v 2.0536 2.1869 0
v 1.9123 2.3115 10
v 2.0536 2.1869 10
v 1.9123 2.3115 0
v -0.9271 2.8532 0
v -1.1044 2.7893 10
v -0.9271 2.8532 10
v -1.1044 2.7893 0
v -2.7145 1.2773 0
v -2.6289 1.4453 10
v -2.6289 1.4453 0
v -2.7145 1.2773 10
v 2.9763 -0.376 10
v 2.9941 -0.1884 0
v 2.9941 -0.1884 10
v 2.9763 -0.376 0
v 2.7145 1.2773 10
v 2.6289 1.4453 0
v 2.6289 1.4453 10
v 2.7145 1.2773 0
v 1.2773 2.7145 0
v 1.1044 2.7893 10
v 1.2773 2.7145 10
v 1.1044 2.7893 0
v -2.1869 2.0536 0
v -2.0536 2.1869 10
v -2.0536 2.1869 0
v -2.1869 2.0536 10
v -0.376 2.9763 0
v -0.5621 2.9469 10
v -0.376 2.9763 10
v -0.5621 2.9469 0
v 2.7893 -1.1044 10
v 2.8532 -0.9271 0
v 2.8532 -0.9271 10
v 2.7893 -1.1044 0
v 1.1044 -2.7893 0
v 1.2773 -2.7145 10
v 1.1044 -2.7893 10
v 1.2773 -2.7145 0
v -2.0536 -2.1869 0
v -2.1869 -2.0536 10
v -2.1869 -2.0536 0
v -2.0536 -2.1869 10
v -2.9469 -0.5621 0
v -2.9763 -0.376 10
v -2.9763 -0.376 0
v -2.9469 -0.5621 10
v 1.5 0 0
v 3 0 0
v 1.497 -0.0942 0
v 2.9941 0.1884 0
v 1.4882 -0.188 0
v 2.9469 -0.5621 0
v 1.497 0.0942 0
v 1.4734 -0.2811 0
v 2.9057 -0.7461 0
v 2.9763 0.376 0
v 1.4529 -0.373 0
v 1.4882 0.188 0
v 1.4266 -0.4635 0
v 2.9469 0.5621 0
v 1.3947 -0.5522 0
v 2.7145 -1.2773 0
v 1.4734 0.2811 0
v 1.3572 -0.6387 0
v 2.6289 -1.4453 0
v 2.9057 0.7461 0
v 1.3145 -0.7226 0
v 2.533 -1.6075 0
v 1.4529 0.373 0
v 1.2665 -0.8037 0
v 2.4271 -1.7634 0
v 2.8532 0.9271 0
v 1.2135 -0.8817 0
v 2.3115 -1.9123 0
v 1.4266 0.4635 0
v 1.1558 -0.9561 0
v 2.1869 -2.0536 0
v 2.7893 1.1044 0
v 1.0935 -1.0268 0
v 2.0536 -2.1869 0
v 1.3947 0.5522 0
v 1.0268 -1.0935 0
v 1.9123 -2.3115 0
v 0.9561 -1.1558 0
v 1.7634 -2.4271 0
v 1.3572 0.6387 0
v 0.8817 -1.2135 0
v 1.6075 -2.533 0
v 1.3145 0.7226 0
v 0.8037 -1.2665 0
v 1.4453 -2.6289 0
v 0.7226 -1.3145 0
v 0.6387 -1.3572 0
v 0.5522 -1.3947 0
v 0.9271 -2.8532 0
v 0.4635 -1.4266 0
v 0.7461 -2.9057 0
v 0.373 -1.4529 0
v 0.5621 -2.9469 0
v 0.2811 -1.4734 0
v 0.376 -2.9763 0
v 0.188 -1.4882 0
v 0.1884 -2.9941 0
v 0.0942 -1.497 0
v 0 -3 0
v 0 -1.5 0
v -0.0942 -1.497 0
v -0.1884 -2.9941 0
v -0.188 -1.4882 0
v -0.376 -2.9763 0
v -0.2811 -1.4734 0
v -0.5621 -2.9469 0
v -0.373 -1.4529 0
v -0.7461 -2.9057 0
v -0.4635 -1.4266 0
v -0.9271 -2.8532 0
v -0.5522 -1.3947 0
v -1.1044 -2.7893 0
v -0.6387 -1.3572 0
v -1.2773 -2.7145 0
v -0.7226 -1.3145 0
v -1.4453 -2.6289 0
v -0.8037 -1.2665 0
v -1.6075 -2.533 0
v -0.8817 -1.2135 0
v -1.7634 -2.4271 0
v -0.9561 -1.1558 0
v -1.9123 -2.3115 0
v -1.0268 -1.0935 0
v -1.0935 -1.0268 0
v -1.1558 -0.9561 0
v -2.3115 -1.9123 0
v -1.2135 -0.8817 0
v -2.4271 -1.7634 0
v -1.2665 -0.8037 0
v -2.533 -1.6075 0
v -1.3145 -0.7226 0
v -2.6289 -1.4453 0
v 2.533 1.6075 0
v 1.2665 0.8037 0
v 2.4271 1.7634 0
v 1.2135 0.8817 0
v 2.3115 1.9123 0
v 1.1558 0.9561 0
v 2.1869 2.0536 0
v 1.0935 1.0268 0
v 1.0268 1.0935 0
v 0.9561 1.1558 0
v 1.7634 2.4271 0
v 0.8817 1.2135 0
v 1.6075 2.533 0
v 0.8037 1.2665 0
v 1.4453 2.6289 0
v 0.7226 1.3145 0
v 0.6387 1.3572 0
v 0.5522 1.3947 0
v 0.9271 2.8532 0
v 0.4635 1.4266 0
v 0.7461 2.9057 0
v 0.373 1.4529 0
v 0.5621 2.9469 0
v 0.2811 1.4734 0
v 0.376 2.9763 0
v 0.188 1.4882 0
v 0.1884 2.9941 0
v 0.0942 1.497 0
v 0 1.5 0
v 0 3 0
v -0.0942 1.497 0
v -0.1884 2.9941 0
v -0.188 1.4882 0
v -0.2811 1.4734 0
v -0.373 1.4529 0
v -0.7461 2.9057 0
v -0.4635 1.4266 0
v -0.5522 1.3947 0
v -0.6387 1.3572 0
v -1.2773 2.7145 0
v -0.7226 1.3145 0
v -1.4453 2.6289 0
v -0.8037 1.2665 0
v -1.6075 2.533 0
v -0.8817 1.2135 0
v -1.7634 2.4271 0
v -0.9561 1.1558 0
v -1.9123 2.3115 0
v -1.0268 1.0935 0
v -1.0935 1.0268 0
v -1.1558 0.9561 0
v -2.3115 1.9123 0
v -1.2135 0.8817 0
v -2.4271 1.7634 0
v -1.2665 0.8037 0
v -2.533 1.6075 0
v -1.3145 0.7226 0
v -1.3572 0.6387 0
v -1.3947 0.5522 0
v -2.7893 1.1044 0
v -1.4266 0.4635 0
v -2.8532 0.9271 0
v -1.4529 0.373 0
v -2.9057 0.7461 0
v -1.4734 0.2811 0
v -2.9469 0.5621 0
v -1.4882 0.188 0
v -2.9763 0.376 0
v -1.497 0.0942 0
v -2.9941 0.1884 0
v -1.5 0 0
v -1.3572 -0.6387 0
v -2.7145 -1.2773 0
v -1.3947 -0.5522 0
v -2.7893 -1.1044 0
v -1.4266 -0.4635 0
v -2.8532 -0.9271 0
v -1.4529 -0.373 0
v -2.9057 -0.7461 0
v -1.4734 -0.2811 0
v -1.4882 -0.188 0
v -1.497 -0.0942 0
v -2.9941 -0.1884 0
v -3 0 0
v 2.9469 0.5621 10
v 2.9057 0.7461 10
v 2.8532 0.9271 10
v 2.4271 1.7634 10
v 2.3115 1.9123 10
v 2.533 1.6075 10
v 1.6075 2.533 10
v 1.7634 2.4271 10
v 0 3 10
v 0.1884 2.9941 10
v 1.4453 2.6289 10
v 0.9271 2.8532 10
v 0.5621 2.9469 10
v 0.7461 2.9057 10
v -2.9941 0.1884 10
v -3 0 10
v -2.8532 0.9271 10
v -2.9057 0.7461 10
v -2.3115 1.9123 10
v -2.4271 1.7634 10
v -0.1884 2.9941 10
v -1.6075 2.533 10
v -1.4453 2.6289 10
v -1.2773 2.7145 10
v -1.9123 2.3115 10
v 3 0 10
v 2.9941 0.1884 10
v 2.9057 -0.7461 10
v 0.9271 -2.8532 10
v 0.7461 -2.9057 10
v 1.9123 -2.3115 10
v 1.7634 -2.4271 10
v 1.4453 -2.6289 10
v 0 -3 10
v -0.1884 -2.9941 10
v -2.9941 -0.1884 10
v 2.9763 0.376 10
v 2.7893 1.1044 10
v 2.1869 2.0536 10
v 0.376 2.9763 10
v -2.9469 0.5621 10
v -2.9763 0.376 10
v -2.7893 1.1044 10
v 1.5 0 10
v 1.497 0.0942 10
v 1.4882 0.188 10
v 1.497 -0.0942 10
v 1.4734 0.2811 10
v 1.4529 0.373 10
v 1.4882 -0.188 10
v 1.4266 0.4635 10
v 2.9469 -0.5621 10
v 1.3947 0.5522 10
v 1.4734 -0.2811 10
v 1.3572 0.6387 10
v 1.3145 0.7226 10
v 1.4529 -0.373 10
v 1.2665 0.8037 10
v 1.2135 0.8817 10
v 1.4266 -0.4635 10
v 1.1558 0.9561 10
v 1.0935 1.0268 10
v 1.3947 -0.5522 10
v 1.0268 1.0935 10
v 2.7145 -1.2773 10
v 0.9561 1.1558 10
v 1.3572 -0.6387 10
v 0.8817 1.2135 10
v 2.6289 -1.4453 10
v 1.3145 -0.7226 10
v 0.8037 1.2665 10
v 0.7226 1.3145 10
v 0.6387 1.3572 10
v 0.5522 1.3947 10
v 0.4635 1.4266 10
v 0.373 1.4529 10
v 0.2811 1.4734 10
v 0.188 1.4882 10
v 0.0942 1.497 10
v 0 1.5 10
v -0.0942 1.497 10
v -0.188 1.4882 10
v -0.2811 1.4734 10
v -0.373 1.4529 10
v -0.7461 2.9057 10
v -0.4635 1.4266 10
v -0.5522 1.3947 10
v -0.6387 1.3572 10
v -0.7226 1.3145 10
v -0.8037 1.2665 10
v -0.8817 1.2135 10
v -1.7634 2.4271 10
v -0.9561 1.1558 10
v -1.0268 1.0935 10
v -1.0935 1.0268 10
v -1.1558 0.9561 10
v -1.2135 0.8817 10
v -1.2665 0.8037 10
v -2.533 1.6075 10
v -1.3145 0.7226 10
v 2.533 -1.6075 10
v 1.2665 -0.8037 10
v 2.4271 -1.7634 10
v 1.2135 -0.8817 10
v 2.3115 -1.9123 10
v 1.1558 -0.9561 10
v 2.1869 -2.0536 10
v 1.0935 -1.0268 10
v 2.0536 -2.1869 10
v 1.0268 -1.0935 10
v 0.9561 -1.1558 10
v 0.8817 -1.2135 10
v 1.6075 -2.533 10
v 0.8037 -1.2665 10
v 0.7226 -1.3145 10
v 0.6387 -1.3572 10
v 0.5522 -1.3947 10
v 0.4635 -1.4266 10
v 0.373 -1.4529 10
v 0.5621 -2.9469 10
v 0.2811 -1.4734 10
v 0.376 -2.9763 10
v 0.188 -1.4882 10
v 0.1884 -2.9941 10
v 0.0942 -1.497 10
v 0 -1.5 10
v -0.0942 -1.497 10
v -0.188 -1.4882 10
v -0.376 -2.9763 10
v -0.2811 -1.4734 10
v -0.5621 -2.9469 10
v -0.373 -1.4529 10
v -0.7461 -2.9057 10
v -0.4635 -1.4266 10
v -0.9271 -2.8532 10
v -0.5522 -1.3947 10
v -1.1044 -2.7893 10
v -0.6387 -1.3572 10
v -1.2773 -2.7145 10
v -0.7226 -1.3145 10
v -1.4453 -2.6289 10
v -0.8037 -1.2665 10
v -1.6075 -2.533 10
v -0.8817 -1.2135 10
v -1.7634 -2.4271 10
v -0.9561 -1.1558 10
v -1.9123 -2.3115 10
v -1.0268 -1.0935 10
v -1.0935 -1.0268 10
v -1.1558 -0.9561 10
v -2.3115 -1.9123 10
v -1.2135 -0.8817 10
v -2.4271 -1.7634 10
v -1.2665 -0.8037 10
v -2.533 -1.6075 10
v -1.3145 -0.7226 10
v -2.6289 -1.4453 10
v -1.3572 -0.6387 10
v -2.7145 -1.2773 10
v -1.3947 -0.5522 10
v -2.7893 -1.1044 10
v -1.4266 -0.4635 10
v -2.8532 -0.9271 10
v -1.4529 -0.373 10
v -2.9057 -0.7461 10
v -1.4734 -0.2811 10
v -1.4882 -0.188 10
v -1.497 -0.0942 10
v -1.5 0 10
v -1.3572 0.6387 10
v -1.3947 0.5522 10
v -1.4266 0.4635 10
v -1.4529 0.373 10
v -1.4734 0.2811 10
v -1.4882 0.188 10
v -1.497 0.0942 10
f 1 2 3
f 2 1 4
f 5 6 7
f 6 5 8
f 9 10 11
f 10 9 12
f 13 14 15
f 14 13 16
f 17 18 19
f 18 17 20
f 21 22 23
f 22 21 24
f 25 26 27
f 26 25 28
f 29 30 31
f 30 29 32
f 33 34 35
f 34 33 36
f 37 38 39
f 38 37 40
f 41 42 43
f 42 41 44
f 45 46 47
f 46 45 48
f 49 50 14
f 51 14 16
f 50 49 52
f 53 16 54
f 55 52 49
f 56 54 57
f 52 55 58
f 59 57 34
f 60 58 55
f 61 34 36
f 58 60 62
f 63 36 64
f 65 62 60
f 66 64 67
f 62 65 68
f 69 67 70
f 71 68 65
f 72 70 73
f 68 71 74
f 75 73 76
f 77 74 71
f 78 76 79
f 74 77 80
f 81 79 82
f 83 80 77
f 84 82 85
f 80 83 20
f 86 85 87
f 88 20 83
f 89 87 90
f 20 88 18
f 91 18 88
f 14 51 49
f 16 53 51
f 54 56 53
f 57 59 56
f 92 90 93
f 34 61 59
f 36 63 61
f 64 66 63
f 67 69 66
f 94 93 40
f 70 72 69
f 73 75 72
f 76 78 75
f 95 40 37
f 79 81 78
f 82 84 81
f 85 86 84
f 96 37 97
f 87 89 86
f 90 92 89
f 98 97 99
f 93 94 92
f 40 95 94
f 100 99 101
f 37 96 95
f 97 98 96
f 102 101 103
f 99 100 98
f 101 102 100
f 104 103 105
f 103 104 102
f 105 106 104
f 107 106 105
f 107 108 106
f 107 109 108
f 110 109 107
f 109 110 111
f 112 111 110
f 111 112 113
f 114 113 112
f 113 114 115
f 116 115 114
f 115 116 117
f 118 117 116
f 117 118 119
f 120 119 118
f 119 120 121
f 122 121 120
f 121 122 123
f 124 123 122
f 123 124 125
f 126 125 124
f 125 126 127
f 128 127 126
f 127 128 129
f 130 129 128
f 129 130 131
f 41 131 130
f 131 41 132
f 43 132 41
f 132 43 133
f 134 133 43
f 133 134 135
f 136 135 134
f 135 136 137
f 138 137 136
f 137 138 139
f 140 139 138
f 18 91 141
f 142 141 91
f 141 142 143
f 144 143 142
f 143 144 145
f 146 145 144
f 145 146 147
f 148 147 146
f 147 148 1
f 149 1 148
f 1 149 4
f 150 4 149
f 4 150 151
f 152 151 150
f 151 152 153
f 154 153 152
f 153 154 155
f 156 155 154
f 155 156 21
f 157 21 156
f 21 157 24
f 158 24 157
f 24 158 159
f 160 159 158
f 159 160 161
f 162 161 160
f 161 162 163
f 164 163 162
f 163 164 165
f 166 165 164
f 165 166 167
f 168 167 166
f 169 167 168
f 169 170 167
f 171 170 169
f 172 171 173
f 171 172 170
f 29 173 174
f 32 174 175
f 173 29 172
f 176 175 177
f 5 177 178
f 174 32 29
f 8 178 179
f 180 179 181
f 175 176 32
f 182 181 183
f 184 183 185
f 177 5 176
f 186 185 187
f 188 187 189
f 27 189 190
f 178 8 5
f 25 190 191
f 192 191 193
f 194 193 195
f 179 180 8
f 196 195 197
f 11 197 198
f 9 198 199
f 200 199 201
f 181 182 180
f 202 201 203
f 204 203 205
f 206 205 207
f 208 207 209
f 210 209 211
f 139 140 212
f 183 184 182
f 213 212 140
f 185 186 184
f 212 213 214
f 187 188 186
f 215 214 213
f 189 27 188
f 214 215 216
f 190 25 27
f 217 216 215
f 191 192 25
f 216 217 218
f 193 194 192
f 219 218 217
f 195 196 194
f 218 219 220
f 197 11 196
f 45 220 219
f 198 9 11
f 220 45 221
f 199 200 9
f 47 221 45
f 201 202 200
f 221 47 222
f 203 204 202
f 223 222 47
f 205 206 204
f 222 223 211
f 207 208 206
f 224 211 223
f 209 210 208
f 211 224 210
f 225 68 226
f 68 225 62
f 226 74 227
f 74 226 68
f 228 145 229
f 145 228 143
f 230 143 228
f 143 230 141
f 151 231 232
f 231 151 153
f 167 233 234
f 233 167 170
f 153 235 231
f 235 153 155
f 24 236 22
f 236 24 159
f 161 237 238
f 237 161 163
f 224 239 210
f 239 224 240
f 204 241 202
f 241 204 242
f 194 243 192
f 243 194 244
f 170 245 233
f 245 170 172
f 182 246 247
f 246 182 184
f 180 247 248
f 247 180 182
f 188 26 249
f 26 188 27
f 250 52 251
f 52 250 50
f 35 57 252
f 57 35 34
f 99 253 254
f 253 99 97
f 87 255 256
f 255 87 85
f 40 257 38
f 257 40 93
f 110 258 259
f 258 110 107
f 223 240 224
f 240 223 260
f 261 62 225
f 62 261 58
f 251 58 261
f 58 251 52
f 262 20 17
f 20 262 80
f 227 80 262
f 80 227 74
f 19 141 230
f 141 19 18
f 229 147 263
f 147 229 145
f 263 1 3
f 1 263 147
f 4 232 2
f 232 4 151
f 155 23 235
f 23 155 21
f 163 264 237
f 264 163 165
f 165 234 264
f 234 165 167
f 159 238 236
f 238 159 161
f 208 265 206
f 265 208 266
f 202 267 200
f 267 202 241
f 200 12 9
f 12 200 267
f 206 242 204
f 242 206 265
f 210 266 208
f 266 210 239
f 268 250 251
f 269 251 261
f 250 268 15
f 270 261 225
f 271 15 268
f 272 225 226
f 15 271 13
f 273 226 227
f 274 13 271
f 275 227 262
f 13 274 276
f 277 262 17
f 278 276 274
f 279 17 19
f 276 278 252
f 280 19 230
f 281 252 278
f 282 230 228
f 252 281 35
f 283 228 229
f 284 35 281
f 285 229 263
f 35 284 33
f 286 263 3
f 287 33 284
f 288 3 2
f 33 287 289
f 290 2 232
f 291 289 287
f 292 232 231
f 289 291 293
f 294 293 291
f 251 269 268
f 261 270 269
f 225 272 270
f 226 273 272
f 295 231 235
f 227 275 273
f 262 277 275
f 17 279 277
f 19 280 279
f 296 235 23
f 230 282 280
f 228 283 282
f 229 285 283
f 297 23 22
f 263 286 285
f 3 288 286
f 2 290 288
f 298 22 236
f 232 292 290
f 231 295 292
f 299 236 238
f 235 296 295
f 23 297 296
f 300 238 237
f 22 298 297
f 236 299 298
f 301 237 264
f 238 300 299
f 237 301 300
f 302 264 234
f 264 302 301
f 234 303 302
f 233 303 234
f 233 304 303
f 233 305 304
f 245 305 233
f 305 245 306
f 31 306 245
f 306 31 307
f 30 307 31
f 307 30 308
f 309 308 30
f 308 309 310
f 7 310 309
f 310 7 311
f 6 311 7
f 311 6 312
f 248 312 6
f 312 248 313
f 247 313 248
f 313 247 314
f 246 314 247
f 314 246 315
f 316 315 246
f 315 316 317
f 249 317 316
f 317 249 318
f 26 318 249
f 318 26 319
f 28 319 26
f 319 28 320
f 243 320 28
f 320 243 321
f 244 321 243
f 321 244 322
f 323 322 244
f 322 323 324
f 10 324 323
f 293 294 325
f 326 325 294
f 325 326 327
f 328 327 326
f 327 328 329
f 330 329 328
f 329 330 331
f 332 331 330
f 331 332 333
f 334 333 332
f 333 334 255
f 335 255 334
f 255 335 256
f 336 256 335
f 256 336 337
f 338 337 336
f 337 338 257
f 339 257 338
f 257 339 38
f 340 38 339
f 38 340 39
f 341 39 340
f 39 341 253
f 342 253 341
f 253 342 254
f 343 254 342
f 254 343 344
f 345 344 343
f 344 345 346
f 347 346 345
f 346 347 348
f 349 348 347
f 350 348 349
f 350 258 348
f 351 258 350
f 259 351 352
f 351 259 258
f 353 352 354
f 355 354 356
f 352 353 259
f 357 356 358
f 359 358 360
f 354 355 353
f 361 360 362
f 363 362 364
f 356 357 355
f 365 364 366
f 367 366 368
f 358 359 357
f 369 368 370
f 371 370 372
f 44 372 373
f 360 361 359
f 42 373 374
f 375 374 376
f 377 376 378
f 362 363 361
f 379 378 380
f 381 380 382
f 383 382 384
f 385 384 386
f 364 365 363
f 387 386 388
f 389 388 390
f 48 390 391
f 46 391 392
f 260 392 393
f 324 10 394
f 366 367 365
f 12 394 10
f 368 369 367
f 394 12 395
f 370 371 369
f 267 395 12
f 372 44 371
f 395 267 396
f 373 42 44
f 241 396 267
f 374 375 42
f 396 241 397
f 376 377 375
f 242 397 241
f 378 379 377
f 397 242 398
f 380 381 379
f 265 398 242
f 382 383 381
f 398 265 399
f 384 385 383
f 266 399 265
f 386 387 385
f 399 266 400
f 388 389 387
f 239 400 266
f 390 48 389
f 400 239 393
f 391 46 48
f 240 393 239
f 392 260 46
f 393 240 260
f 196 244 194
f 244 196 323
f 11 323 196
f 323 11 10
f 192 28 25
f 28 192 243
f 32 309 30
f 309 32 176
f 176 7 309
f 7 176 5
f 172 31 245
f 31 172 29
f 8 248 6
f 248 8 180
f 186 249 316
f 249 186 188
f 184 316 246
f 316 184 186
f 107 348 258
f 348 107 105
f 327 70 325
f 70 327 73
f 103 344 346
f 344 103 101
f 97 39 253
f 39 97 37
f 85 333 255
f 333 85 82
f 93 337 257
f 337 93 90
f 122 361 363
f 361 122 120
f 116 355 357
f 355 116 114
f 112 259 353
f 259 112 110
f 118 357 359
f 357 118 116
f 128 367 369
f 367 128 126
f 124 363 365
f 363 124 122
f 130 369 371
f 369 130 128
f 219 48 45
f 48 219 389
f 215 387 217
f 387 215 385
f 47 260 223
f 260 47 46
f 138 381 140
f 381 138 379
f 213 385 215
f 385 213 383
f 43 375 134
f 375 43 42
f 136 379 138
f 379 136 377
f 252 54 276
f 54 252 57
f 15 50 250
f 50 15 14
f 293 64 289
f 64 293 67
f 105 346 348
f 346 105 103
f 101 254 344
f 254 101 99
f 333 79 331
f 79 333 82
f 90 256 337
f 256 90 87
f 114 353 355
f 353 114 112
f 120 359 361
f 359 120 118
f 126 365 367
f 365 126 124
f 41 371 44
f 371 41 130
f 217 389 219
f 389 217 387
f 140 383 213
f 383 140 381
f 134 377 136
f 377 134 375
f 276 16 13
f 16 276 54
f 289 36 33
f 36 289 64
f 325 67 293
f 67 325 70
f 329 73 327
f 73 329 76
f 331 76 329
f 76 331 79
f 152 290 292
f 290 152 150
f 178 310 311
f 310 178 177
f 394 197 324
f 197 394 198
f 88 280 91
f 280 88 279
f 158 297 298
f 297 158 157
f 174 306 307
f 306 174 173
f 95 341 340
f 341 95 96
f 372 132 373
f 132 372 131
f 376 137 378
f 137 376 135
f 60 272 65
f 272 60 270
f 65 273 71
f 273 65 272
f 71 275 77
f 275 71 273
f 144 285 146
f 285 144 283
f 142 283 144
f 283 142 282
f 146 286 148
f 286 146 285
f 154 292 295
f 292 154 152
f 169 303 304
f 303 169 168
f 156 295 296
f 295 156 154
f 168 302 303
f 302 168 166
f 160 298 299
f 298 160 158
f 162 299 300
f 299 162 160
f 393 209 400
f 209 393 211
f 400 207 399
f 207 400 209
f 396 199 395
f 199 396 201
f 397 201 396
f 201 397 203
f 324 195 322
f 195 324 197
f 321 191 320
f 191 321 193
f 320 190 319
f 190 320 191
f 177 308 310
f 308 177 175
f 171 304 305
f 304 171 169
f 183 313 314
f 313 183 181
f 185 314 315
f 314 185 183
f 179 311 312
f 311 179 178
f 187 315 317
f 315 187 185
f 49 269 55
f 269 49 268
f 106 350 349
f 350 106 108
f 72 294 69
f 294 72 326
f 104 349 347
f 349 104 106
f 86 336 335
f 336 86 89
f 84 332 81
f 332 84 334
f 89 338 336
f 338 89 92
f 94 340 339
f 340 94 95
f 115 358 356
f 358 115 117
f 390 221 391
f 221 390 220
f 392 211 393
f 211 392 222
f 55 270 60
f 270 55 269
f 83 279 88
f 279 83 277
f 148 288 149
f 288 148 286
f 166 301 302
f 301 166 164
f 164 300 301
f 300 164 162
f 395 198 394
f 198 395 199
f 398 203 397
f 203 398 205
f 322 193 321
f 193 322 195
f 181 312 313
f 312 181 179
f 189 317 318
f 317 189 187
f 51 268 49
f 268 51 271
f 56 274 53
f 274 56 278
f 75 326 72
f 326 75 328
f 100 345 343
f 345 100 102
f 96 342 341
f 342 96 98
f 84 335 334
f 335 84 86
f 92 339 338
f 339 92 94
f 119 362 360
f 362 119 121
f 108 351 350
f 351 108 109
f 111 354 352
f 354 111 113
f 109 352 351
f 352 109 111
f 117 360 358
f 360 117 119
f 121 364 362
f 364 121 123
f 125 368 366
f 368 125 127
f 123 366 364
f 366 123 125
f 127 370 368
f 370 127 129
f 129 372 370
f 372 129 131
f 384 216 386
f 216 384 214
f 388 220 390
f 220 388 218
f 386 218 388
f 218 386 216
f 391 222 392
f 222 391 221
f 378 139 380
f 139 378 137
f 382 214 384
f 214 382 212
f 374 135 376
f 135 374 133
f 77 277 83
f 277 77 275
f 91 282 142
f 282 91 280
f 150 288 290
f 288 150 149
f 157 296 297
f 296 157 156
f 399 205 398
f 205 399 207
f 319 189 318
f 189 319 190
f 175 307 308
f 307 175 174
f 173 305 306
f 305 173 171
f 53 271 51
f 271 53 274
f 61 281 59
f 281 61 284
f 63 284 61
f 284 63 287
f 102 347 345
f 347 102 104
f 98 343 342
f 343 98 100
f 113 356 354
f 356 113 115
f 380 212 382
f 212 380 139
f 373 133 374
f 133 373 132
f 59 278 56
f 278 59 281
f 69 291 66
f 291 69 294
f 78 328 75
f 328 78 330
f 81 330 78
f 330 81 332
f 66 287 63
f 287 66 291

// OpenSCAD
    difference(){
        cylinder(10, 3, 3, $fn=100);
        cylinder(10, 1.5, 1.5, $fn=100);
    }
